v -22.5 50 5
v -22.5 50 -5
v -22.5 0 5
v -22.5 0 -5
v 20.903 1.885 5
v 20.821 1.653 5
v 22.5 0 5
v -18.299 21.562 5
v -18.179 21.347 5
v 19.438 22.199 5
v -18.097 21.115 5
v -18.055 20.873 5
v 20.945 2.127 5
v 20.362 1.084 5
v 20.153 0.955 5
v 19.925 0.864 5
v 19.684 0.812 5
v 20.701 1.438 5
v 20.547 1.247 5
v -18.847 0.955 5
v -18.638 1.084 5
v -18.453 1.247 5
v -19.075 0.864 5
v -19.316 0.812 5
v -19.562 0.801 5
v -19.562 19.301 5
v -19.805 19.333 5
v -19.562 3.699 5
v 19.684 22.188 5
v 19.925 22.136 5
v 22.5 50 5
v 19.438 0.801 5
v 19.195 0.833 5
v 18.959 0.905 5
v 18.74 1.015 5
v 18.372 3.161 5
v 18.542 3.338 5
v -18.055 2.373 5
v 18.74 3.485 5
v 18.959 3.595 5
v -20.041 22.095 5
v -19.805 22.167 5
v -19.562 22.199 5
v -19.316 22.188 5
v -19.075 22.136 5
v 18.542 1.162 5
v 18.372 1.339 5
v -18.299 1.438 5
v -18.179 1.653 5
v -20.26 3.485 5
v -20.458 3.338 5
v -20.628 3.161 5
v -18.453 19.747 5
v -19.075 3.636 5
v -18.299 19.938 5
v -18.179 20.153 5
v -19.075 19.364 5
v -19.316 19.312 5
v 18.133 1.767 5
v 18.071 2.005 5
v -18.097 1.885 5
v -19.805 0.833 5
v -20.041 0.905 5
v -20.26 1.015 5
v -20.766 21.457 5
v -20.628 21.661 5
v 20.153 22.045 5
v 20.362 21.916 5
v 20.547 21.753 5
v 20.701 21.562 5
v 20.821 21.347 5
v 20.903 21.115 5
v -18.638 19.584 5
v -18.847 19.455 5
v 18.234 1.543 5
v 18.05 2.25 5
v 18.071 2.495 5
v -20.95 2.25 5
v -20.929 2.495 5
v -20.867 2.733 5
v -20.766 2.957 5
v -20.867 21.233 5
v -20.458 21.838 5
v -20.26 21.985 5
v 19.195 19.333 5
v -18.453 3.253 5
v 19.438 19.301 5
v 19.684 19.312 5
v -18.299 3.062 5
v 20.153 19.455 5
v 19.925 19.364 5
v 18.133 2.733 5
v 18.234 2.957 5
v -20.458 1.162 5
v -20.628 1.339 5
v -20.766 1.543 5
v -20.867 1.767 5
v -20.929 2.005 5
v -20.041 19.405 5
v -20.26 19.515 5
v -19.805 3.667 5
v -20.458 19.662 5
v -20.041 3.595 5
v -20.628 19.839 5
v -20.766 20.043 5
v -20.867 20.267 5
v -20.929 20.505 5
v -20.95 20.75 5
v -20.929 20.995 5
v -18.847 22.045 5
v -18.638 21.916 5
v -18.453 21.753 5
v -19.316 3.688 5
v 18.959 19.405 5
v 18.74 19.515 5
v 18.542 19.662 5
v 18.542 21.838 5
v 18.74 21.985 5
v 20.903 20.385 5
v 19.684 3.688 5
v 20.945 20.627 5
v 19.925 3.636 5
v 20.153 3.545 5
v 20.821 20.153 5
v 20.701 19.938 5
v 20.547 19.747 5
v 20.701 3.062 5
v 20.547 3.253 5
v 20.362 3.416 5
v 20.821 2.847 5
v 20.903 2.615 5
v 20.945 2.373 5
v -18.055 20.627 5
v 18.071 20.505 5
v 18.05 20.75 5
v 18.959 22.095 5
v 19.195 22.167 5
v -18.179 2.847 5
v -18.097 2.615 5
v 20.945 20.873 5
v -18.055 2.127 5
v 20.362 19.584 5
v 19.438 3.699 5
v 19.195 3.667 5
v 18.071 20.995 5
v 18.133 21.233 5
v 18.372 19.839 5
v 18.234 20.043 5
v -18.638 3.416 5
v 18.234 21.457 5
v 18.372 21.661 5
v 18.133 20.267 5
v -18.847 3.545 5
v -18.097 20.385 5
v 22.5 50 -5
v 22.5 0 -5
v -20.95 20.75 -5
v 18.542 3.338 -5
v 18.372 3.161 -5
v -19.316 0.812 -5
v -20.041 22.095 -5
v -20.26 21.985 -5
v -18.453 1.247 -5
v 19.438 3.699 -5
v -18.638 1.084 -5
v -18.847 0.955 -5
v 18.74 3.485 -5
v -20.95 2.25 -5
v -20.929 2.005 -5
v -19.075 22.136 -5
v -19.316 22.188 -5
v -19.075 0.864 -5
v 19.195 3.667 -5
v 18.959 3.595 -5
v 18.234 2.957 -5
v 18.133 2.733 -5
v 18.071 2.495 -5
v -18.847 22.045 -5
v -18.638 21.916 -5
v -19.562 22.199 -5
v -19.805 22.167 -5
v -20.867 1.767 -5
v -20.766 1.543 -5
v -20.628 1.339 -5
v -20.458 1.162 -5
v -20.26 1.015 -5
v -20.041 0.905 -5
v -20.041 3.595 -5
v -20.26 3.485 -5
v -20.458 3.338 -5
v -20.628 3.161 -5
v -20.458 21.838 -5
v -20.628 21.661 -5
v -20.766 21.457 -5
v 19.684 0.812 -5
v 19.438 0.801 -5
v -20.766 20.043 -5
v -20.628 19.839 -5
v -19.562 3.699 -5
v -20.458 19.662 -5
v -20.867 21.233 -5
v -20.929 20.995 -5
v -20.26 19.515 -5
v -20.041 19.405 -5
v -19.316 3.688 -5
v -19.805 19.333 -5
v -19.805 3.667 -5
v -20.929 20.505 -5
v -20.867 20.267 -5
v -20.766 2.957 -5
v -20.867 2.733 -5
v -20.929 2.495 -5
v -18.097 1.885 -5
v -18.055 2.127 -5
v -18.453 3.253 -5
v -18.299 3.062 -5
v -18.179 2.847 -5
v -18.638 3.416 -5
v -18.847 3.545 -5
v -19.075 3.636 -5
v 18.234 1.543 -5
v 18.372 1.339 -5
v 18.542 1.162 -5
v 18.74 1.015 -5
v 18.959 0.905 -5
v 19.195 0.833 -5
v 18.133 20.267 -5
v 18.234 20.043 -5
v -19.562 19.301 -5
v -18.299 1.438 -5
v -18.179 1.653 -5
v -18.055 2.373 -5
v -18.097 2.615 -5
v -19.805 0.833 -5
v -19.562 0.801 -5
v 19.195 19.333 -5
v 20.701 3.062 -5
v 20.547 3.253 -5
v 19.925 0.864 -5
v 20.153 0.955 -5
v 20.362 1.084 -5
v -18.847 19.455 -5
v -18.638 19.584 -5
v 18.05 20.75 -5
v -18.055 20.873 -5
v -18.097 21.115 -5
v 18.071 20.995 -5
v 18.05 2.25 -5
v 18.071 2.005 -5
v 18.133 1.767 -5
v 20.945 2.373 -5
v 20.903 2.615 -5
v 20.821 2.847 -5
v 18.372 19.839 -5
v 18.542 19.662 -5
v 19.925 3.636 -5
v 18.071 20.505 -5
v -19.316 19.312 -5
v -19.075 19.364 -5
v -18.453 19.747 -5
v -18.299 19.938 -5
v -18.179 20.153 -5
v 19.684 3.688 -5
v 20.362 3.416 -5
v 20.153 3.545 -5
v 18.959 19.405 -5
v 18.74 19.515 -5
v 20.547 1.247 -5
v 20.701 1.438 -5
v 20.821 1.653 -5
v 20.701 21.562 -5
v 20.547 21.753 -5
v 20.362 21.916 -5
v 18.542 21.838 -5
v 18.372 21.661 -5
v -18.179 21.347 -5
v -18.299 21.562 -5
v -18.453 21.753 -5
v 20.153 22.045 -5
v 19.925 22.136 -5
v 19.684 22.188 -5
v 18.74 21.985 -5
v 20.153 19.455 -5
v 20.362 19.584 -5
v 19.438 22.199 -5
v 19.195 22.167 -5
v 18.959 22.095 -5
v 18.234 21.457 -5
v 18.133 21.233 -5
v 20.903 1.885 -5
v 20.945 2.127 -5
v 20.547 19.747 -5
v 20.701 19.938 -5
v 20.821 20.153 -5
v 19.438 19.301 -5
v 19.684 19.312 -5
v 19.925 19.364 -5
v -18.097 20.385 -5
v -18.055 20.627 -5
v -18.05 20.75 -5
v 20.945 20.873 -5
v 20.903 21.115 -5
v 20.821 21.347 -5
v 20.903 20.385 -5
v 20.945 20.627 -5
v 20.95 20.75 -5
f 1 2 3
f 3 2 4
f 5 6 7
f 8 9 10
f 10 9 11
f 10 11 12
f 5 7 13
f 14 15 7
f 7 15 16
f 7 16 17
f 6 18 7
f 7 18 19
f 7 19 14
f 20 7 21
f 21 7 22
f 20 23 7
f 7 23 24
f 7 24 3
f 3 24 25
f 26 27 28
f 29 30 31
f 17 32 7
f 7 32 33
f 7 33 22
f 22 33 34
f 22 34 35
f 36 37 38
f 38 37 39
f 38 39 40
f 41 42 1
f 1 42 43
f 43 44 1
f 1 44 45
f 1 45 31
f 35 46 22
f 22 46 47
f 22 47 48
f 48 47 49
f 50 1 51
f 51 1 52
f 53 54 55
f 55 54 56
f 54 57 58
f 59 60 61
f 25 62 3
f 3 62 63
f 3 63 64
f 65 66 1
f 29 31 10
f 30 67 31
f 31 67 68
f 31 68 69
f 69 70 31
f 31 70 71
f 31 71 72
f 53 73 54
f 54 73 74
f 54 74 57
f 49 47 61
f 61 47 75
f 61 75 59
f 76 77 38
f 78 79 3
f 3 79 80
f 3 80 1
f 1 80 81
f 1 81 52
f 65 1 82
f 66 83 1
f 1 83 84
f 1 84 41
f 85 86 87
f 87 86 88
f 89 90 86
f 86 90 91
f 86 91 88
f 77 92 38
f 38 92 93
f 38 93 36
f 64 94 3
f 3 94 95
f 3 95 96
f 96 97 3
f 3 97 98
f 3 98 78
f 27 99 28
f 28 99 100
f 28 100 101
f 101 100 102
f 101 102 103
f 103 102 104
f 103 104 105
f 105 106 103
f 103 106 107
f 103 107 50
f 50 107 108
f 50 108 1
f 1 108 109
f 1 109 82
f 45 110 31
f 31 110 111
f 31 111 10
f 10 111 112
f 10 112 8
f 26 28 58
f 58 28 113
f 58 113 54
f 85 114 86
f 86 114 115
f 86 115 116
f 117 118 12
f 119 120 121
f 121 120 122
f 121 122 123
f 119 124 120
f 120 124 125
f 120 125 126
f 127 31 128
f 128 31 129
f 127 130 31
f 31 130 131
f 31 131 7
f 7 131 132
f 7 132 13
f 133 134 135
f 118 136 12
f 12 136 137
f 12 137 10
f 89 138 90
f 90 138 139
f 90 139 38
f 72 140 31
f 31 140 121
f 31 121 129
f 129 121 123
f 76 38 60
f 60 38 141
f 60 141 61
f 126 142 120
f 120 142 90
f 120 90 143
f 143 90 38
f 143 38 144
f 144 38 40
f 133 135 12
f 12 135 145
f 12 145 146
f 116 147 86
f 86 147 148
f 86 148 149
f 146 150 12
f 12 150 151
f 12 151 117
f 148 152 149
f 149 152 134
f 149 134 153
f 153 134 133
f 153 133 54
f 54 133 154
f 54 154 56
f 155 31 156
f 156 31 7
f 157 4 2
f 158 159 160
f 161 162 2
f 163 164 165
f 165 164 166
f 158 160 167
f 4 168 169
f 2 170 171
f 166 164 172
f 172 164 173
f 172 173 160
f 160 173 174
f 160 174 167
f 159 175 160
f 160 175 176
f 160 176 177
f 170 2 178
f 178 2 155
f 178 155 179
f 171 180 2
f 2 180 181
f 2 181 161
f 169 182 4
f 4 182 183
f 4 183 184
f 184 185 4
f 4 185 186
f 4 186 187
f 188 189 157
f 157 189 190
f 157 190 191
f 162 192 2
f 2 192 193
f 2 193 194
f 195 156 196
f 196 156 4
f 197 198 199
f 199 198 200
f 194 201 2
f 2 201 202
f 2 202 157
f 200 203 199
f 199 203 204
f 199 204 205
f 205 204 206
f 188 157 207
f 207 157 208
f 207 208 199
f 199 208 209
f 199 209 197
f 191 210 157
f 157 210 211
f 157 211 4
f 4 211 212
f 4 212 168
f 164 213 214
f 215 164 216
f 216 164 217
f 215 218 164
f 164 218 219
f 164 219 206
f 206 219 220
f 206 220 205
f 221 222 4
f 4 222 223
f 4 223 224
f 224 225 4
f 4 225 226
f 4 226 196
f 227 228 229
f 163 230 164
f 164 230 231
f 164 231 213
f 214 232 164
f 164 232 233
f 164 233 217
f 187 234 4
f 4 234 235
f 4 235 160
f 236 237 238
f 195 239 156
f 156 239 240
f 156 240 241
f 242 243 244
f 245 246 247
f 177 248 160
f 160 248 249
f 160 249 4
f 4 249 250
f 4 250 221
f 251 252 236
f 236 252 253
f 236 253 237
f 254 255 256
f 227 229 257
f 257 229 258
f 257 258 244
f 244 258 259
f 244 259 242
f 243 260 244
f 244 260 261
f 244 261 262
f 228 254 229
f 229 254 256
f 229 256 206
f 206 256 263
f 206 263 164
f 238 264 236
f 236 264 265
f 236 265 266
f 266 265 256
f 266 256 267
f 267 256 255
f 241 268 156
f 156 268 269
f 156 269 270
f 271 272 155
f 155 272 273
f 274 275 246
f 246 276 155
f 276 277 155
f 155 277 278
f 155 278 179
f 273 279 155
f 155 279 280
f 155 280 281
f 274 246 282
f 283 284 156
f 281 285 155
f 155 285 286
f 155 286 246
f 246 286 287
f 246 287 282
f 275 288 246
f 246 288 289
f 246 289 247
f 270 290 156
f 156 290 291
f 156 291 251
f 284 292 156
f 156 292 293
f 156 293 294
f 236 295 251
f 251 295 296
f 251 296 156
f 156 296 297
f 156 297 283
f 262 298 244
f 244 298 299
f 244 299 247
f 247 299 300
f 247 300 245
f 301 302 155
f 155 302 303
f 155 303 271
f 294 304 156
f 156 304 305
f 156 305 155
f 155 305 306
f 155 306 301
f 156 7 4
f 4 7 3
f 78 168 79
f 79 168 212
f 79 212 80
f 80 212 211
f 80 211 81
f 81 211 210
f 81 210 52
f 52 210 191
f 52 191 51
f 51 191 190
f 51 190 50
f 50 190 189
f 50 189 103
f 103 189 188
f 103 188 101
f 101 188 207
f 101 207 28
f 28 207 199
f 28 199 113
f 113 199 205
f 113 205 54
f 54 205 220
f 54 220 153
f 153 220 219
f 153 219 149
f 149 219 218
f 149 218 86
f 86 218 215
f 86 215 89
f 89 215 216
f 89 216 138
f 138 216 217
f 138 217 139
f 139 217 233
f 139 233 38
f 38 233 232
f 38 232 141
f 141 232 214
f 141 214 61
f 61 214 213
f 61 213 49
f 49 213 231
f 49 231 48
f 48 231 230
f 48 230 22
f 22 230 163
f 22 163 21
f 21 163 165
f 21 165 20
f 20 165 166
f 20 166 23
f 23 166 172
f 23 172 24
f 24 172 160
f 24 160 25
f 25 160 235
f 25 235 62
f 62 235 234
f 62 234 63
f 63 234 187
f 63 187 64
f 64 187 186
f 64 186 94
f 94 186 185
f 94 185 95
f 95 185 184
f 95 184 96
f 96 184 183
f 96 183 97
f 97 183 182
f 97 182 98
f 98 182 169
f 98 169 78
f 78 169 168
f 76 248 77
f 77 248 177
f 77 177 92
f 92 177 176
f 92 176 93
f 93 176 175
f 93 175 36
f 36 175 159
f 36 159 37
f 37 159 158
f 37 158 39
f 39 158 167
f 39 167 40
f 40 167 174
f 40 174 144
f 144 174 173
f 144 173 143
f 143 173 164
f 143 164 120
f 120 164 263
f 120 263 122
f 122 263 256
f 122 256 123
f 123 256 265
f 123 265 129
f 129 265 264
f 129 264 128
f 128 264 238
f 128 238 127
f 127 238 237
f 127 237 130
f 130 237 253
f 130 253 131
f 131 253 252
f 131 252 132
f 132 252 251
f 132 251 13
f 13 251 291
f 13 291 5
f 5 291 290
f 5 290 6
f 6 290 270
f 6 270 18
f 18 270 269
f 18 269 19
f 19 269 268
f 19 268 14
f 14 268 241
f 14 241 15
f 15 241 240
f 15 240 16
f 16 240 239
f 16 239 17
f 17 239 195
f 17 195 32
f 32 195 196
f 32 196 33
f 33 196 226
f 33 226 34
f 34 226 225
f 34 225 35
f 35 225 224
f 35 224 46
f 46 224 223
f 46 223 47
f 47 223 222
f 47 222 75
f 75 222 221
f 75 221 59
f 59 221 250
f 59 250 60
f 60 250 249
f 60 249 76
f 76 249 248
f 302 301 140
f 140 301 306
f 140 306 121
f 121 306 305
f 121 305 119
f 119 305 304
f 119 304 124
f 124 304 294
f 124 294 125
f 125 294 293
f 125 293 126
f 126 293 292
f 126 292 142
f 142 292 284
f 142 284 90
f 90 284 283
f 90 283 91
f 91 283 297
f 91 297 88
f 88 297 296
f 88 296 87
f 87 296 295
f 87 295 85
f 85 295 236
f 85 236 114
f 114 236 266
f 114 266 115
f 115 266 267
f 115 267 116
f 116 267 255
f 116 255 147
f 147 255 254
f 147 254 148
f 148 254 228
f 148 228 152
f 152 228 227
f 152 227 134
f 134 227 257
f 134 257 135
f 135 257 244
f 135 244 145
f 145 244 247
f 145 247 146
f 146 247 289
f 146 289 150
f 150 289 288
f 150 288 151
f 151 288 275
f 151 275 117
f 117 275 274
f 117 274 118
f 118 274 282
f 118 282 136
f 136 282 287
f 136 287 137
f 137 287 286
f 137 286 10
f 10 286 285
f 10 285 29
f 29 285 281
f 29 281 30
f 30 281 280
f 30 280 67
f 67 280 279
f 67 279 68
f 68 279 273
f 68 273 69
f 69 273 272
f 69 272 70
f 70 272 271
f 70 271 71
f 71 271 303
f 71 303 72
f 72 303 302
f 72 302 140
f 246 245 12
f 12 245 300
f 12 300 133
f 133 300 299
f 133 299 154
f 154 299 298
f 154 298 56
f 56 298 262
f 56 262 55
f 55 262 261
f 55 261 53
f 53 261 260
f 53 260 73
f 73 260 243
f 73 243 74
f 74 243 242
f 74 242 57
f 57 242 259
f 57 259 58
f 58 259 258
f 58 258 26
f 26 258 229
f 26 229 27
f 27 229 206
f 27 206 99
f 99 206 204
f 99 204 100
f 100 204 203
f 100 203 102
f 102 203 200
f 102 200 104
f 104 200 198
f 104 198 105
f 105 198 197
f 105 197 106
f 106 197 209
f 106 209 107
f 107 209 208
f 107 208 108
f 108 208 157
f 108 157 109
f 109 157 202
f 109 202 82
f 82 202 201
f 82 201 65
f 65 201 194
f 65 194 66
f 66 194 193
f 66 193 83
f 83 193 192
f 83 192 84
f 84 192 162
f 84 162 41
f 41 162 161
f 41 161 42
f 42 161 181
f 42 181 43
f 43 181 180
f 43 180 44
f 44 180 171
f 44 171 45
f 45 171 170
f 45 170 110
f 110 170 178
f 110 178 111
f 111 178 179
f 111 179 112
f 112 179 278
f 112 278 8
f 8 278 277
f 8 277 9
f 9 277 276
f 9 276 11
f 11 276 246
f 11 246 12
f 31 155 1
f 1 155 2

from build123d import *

# Parameters (mm, degrees)
SKETCH2_W           = 45
SKETCH2_H           = 10
BOSS_EXTRUDE1_DEPTH = 40
SKETCH3_R           = 1.45
CUT_EXTRUDE1_DEPTH  = 40
SKETCH4_W           = 45
SKETCH4_H           = 10
BOSS_EXTRUDE2_DEPTH = 10


with BuildPart() as part:
    # Sketch2 → Boss-Extrude1 (new body)
    with BuildSketch(Plane(origin=(0, 0, 0), x_dir=(1, 0, 0), z_dir=(0, 1, 0))):
        Rectangle(SKETCH2_W, SKETCH2_H)
    extrude(amount=BOSS_EXTRUDE1_DEPTH)

    # Sketch3 → Cut-Extrude1 (cut)
    with BuildSketch(Plane(origin=(0, 0, -5), x_dir=(-1, 0, 0), z_dir=(0, 0, -1))):
        with Locations((19.5, 2.25)):
            Circle(SKETCH3_R)
        with Locations((-19.5, 2.25)):
            Circle(SKETCH3_R)
        with Locations((-19.5, 20.75)):
            Circle(SKETCH3_R)
        with Locations((19.5, 20.75)):
            Circle(SKETCH3_R)
    extrude(amount=-CUT_EXTRUDE1_DEPTH, mode=Mode.SUBTRACT)

    # Sketch4 → Boss-Extrude2 (add)
    with BuildSketch(Plane(origin=(0, 40, 0), x_dir=(1, 0, 0), z_dir=(0, 1, 0))):
        Rectangle(SKETCH4_W, SKETCH4_H)
    extrude(amount=BOSS_EXTRUDE2_DEPTH)


solid = part.part
